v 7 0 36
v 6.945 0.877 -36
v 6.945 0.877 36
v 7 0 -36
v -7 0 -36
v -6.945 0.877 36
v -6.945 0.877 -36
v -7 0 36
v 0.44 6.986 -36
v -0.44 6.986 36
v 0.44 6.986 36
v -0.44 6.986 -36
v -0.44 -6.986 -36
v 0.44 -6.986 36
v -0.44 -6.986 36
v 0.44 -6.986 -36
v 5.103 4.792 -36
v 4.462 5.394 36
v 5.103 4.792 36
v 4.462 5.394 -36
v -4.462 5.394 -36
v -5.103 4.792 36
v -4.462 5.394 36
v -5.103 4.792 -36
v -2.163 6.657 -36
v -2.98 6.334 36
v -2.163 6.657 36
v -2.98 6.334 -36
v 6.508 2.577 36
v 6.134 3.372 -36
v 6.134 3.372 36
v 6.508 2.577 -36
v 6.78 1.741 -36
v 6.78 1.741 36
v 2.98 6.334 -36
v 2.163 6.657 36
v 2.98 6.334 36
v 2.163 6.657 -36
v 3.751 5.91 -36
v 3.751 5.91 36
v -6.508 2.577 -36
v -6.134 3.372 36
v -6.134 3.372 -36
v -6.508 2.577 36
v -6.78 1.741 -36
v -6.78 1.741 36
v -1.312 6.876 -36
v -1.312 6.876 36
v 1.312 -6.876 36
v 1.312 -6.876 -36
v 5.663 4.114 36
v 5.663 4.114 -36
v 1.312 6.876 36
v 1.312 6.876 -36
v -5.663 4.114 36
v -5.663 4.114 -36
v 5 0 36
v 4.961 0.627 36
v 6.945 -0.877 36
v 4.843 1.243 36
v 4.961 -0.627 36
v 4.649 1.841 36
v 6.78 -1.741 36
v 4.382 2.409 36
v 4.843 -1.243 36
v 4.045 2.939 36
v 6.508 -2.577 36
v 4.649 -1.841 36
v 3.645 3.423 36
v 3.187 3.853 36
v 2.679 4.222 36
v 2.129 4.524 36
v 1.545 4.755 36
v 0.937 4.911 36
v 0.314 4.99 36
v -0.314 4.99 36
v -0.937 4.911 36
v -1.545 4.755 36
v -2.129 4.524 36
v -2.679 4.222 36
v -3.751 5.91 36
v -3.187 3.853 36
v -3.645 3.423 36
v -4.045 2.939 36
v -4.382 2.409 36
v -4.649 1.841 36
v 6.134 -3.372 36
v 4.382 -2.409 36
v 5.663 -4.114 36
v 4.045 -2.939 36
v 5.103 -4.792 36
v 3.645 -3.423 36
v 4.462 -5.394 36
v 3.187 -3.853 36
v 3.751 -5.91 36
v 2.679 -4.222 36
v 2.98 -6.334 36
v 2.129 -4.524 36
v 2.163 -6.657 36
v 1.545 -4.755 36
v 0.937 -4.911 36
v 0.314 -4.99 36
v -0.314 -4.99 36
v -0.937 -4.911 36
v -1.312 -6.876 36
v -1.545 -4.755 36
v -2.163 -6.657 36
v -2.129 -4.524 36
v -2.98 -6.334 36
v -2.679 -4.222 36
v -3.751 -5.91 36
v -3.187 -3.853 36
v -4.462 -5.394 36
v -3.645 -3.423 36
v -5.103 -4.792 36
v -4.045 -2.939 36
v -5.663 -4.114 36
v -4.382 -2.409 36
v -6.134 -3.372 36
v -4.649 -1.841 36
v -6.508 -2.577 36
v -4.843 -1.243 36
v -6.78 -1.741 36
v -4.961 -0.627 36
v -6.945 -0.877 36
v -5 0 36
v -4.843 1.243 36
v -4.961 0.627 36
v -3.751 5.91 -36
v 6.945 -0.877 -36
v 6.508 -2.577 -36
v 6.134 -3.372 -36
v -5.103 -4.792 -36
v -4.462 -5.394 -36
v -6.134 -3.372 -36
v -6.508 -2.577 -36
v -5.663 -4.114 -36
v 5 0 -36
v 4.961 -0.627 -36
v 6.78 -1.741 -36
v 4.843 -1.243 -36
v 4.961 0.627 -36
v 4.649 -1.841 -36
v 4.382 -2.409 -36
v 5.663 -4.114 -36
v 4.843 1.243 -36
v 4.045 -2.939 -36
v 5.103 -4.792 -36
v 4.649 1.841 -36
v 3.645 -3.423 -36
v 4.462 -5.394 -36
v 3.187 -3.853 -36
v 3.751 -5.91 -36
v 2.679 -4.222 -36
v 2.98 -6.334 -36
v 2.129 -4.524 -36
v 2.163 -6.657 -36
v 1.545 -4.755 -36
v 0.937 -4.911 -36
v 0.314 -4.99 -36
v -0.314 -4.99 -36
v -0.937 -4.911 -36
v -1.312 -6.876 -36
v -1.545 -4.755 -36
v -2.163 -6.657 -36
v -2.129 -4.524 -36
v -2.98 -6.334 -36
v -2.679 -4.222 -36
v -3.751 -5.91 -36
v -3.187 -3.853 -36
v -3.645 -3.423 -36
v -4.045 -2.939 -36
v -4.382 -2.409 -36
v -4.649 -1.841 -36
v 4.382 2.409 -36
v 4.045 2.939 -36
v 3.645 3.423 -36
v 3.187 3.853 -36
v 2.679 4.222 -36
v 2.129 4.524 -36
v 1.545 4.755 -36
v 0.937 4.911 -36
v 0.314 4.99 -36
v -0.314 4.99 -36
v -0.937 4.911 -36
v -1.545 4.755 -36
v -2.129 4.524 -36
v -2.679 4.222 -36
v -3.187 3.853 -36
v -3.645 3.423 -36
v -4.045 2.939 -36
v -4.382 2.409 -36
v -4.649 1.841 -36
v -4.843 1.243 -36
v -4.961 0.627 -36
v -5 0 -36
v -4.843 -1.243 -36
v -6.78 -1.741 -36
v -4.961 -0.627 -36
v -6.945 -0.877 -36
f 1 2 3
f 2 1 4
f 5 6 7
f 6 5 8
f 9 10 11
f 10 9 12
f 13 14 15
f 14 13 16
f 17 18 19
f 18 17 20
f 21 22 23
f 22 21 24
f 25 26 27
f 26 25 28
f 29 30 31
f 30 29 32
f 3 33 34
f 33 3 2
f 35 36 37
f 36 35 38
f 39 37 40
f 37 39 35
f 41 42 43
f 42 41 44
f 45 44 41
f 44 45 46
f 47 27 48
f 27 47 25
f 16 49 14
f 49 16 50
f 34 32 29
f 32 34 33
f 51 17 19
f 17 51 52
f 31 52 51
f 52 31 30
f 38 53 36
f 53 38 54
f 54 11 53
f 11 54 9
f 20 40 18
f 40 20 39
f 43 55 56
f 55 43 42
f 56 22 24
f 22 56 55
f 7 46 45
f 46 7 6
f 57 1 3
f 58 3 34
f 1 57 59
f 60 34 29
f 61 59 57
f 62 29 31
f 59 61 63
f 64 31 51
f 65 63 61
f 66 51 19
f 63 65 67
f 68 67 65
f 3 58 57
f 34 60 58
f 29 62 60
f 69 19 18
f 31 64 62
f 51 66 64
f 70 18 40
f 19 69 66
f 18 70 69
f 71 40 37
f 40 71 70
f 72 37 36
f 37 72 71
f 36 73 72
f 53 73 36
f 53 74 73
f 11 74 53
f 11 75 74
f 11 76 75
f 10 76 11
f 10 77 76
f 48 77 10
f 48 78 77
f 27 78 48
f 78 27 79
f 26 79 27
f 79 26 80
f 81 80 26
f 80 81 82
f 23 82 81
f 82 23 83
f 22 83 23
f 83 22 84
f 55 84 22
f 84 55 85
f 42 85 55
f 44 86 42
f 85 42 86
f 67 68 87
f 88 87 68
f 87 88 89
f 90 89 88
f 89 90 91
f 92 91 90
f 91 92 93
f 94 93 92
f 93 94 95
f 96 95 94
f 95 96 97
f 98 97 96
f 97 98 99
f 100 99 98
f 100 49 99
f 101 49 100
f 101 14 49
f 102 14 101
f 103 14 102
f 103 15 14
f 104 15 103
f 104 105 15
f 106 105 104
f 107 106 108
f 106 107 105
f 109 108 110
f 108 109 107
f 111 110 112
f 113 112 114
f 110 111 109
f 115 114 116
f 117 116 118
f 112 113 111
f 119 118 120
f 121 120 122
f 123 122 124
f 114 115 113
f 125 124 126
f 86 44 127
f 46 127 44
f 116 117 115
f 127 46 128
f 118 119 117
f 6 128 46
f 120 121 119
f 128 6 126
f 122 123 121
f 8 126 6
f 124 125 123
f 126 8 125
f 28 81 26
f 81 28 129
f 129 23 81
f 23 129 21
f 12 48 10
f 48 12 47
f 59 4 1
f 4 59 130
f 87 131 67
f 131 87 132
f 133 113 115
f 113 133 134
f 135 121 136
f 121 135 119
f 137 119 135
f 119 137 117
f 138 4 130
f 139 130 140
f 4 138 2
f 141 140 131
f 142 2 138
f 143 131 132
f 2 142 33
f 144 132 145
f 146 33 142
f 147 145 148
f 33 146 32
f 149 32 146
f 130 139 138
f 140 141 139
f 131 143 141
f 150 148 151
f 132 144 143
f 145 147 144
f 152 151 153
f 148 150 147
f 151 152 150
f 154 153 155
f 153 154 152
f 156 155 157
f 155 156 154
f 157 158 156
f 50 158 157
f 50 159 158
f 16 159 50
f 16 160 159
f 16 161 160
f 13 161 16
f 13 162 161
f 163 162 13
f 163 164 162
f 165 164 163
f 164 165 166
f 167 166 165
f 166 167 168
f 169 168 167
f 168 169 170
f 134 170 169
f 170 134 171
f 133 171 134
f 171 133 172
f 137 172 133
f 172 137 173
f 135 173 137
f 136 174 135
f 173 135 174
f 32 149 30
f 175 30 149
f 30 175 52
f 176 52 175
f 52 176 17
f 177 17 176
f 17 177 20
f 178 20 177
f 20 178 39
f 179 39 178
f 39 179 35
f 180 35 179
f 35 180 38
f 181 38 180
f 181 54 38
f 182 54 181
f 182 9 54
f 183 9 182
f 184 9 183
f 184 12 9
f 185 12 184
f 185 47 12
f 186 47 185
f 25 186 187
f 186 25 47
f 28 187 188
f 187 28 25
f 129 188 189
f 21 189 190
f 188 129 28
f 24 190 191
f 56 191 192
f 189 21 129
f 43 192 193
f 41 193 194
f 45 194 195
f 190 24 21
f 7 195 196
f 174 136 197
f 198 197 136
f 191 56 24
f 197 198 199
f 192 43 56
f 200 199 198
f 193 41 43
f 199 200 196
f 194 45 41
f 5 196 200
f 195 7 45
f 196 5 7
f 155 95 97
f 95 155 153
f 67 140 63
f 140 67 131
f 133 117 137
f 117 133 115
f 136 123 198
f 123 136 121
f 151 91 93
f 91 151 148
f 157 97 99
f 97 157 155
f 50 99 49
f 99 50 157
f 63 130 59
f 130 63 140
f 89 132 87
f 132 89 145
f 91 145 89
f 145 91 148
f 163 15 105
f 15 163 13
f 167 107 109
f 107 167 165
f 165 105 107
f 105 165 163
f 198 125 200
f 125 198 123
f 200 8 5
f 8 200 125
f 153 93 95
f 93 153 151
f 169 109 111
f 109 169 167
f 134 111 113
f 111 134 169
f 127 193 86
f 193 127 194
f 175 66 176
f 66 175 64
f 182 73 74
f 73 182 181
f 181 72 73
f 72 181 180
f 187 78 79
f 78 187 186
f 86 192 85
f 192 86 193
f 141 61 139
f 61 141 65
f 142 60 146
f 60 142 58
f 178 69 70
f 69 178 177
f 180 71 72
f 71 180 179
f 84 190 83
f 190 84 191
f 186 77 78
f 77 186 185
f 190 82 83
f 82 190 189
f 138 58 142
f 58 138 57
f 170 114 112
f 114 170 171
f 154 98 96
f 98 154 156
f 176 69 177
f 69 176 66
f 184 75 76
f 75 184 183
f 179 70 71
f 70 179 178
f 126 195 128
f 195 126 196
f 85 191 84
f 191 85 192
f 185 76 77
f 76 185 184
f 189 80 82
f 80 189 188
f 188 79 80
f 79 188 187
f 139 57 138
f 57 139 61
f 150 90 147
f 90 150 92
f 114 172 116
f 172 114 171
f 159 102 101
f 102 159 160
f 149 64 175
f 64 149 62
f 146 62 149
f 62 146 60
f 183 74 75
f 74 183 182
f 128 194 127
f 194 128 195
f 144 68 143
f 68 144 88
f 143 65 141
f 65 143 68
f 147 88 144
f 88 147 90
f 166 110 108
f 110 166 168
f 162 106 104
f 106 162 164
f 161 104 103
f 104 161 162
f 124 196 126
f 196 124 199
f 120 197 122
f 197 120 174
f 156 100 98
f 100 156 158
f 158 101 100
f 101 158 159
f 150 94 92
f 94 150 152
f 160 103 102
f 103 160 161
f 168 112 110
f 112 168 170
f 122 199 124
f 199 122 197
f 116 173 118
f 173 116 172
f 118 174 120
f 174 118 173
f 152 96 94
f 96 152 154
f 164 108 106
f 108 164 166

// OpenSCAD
$fn = 50;


difference() {
	union() {
		translate(v = [0, 0, -36.0000000000]) {
			cylinder(h = 72, r = 7.0000000000);
		}
	}
	union() {
		translate(v = [0, 0, -100.0000000000]) {
			cylinder(h = 200, r = 5);
		}
	}
}
